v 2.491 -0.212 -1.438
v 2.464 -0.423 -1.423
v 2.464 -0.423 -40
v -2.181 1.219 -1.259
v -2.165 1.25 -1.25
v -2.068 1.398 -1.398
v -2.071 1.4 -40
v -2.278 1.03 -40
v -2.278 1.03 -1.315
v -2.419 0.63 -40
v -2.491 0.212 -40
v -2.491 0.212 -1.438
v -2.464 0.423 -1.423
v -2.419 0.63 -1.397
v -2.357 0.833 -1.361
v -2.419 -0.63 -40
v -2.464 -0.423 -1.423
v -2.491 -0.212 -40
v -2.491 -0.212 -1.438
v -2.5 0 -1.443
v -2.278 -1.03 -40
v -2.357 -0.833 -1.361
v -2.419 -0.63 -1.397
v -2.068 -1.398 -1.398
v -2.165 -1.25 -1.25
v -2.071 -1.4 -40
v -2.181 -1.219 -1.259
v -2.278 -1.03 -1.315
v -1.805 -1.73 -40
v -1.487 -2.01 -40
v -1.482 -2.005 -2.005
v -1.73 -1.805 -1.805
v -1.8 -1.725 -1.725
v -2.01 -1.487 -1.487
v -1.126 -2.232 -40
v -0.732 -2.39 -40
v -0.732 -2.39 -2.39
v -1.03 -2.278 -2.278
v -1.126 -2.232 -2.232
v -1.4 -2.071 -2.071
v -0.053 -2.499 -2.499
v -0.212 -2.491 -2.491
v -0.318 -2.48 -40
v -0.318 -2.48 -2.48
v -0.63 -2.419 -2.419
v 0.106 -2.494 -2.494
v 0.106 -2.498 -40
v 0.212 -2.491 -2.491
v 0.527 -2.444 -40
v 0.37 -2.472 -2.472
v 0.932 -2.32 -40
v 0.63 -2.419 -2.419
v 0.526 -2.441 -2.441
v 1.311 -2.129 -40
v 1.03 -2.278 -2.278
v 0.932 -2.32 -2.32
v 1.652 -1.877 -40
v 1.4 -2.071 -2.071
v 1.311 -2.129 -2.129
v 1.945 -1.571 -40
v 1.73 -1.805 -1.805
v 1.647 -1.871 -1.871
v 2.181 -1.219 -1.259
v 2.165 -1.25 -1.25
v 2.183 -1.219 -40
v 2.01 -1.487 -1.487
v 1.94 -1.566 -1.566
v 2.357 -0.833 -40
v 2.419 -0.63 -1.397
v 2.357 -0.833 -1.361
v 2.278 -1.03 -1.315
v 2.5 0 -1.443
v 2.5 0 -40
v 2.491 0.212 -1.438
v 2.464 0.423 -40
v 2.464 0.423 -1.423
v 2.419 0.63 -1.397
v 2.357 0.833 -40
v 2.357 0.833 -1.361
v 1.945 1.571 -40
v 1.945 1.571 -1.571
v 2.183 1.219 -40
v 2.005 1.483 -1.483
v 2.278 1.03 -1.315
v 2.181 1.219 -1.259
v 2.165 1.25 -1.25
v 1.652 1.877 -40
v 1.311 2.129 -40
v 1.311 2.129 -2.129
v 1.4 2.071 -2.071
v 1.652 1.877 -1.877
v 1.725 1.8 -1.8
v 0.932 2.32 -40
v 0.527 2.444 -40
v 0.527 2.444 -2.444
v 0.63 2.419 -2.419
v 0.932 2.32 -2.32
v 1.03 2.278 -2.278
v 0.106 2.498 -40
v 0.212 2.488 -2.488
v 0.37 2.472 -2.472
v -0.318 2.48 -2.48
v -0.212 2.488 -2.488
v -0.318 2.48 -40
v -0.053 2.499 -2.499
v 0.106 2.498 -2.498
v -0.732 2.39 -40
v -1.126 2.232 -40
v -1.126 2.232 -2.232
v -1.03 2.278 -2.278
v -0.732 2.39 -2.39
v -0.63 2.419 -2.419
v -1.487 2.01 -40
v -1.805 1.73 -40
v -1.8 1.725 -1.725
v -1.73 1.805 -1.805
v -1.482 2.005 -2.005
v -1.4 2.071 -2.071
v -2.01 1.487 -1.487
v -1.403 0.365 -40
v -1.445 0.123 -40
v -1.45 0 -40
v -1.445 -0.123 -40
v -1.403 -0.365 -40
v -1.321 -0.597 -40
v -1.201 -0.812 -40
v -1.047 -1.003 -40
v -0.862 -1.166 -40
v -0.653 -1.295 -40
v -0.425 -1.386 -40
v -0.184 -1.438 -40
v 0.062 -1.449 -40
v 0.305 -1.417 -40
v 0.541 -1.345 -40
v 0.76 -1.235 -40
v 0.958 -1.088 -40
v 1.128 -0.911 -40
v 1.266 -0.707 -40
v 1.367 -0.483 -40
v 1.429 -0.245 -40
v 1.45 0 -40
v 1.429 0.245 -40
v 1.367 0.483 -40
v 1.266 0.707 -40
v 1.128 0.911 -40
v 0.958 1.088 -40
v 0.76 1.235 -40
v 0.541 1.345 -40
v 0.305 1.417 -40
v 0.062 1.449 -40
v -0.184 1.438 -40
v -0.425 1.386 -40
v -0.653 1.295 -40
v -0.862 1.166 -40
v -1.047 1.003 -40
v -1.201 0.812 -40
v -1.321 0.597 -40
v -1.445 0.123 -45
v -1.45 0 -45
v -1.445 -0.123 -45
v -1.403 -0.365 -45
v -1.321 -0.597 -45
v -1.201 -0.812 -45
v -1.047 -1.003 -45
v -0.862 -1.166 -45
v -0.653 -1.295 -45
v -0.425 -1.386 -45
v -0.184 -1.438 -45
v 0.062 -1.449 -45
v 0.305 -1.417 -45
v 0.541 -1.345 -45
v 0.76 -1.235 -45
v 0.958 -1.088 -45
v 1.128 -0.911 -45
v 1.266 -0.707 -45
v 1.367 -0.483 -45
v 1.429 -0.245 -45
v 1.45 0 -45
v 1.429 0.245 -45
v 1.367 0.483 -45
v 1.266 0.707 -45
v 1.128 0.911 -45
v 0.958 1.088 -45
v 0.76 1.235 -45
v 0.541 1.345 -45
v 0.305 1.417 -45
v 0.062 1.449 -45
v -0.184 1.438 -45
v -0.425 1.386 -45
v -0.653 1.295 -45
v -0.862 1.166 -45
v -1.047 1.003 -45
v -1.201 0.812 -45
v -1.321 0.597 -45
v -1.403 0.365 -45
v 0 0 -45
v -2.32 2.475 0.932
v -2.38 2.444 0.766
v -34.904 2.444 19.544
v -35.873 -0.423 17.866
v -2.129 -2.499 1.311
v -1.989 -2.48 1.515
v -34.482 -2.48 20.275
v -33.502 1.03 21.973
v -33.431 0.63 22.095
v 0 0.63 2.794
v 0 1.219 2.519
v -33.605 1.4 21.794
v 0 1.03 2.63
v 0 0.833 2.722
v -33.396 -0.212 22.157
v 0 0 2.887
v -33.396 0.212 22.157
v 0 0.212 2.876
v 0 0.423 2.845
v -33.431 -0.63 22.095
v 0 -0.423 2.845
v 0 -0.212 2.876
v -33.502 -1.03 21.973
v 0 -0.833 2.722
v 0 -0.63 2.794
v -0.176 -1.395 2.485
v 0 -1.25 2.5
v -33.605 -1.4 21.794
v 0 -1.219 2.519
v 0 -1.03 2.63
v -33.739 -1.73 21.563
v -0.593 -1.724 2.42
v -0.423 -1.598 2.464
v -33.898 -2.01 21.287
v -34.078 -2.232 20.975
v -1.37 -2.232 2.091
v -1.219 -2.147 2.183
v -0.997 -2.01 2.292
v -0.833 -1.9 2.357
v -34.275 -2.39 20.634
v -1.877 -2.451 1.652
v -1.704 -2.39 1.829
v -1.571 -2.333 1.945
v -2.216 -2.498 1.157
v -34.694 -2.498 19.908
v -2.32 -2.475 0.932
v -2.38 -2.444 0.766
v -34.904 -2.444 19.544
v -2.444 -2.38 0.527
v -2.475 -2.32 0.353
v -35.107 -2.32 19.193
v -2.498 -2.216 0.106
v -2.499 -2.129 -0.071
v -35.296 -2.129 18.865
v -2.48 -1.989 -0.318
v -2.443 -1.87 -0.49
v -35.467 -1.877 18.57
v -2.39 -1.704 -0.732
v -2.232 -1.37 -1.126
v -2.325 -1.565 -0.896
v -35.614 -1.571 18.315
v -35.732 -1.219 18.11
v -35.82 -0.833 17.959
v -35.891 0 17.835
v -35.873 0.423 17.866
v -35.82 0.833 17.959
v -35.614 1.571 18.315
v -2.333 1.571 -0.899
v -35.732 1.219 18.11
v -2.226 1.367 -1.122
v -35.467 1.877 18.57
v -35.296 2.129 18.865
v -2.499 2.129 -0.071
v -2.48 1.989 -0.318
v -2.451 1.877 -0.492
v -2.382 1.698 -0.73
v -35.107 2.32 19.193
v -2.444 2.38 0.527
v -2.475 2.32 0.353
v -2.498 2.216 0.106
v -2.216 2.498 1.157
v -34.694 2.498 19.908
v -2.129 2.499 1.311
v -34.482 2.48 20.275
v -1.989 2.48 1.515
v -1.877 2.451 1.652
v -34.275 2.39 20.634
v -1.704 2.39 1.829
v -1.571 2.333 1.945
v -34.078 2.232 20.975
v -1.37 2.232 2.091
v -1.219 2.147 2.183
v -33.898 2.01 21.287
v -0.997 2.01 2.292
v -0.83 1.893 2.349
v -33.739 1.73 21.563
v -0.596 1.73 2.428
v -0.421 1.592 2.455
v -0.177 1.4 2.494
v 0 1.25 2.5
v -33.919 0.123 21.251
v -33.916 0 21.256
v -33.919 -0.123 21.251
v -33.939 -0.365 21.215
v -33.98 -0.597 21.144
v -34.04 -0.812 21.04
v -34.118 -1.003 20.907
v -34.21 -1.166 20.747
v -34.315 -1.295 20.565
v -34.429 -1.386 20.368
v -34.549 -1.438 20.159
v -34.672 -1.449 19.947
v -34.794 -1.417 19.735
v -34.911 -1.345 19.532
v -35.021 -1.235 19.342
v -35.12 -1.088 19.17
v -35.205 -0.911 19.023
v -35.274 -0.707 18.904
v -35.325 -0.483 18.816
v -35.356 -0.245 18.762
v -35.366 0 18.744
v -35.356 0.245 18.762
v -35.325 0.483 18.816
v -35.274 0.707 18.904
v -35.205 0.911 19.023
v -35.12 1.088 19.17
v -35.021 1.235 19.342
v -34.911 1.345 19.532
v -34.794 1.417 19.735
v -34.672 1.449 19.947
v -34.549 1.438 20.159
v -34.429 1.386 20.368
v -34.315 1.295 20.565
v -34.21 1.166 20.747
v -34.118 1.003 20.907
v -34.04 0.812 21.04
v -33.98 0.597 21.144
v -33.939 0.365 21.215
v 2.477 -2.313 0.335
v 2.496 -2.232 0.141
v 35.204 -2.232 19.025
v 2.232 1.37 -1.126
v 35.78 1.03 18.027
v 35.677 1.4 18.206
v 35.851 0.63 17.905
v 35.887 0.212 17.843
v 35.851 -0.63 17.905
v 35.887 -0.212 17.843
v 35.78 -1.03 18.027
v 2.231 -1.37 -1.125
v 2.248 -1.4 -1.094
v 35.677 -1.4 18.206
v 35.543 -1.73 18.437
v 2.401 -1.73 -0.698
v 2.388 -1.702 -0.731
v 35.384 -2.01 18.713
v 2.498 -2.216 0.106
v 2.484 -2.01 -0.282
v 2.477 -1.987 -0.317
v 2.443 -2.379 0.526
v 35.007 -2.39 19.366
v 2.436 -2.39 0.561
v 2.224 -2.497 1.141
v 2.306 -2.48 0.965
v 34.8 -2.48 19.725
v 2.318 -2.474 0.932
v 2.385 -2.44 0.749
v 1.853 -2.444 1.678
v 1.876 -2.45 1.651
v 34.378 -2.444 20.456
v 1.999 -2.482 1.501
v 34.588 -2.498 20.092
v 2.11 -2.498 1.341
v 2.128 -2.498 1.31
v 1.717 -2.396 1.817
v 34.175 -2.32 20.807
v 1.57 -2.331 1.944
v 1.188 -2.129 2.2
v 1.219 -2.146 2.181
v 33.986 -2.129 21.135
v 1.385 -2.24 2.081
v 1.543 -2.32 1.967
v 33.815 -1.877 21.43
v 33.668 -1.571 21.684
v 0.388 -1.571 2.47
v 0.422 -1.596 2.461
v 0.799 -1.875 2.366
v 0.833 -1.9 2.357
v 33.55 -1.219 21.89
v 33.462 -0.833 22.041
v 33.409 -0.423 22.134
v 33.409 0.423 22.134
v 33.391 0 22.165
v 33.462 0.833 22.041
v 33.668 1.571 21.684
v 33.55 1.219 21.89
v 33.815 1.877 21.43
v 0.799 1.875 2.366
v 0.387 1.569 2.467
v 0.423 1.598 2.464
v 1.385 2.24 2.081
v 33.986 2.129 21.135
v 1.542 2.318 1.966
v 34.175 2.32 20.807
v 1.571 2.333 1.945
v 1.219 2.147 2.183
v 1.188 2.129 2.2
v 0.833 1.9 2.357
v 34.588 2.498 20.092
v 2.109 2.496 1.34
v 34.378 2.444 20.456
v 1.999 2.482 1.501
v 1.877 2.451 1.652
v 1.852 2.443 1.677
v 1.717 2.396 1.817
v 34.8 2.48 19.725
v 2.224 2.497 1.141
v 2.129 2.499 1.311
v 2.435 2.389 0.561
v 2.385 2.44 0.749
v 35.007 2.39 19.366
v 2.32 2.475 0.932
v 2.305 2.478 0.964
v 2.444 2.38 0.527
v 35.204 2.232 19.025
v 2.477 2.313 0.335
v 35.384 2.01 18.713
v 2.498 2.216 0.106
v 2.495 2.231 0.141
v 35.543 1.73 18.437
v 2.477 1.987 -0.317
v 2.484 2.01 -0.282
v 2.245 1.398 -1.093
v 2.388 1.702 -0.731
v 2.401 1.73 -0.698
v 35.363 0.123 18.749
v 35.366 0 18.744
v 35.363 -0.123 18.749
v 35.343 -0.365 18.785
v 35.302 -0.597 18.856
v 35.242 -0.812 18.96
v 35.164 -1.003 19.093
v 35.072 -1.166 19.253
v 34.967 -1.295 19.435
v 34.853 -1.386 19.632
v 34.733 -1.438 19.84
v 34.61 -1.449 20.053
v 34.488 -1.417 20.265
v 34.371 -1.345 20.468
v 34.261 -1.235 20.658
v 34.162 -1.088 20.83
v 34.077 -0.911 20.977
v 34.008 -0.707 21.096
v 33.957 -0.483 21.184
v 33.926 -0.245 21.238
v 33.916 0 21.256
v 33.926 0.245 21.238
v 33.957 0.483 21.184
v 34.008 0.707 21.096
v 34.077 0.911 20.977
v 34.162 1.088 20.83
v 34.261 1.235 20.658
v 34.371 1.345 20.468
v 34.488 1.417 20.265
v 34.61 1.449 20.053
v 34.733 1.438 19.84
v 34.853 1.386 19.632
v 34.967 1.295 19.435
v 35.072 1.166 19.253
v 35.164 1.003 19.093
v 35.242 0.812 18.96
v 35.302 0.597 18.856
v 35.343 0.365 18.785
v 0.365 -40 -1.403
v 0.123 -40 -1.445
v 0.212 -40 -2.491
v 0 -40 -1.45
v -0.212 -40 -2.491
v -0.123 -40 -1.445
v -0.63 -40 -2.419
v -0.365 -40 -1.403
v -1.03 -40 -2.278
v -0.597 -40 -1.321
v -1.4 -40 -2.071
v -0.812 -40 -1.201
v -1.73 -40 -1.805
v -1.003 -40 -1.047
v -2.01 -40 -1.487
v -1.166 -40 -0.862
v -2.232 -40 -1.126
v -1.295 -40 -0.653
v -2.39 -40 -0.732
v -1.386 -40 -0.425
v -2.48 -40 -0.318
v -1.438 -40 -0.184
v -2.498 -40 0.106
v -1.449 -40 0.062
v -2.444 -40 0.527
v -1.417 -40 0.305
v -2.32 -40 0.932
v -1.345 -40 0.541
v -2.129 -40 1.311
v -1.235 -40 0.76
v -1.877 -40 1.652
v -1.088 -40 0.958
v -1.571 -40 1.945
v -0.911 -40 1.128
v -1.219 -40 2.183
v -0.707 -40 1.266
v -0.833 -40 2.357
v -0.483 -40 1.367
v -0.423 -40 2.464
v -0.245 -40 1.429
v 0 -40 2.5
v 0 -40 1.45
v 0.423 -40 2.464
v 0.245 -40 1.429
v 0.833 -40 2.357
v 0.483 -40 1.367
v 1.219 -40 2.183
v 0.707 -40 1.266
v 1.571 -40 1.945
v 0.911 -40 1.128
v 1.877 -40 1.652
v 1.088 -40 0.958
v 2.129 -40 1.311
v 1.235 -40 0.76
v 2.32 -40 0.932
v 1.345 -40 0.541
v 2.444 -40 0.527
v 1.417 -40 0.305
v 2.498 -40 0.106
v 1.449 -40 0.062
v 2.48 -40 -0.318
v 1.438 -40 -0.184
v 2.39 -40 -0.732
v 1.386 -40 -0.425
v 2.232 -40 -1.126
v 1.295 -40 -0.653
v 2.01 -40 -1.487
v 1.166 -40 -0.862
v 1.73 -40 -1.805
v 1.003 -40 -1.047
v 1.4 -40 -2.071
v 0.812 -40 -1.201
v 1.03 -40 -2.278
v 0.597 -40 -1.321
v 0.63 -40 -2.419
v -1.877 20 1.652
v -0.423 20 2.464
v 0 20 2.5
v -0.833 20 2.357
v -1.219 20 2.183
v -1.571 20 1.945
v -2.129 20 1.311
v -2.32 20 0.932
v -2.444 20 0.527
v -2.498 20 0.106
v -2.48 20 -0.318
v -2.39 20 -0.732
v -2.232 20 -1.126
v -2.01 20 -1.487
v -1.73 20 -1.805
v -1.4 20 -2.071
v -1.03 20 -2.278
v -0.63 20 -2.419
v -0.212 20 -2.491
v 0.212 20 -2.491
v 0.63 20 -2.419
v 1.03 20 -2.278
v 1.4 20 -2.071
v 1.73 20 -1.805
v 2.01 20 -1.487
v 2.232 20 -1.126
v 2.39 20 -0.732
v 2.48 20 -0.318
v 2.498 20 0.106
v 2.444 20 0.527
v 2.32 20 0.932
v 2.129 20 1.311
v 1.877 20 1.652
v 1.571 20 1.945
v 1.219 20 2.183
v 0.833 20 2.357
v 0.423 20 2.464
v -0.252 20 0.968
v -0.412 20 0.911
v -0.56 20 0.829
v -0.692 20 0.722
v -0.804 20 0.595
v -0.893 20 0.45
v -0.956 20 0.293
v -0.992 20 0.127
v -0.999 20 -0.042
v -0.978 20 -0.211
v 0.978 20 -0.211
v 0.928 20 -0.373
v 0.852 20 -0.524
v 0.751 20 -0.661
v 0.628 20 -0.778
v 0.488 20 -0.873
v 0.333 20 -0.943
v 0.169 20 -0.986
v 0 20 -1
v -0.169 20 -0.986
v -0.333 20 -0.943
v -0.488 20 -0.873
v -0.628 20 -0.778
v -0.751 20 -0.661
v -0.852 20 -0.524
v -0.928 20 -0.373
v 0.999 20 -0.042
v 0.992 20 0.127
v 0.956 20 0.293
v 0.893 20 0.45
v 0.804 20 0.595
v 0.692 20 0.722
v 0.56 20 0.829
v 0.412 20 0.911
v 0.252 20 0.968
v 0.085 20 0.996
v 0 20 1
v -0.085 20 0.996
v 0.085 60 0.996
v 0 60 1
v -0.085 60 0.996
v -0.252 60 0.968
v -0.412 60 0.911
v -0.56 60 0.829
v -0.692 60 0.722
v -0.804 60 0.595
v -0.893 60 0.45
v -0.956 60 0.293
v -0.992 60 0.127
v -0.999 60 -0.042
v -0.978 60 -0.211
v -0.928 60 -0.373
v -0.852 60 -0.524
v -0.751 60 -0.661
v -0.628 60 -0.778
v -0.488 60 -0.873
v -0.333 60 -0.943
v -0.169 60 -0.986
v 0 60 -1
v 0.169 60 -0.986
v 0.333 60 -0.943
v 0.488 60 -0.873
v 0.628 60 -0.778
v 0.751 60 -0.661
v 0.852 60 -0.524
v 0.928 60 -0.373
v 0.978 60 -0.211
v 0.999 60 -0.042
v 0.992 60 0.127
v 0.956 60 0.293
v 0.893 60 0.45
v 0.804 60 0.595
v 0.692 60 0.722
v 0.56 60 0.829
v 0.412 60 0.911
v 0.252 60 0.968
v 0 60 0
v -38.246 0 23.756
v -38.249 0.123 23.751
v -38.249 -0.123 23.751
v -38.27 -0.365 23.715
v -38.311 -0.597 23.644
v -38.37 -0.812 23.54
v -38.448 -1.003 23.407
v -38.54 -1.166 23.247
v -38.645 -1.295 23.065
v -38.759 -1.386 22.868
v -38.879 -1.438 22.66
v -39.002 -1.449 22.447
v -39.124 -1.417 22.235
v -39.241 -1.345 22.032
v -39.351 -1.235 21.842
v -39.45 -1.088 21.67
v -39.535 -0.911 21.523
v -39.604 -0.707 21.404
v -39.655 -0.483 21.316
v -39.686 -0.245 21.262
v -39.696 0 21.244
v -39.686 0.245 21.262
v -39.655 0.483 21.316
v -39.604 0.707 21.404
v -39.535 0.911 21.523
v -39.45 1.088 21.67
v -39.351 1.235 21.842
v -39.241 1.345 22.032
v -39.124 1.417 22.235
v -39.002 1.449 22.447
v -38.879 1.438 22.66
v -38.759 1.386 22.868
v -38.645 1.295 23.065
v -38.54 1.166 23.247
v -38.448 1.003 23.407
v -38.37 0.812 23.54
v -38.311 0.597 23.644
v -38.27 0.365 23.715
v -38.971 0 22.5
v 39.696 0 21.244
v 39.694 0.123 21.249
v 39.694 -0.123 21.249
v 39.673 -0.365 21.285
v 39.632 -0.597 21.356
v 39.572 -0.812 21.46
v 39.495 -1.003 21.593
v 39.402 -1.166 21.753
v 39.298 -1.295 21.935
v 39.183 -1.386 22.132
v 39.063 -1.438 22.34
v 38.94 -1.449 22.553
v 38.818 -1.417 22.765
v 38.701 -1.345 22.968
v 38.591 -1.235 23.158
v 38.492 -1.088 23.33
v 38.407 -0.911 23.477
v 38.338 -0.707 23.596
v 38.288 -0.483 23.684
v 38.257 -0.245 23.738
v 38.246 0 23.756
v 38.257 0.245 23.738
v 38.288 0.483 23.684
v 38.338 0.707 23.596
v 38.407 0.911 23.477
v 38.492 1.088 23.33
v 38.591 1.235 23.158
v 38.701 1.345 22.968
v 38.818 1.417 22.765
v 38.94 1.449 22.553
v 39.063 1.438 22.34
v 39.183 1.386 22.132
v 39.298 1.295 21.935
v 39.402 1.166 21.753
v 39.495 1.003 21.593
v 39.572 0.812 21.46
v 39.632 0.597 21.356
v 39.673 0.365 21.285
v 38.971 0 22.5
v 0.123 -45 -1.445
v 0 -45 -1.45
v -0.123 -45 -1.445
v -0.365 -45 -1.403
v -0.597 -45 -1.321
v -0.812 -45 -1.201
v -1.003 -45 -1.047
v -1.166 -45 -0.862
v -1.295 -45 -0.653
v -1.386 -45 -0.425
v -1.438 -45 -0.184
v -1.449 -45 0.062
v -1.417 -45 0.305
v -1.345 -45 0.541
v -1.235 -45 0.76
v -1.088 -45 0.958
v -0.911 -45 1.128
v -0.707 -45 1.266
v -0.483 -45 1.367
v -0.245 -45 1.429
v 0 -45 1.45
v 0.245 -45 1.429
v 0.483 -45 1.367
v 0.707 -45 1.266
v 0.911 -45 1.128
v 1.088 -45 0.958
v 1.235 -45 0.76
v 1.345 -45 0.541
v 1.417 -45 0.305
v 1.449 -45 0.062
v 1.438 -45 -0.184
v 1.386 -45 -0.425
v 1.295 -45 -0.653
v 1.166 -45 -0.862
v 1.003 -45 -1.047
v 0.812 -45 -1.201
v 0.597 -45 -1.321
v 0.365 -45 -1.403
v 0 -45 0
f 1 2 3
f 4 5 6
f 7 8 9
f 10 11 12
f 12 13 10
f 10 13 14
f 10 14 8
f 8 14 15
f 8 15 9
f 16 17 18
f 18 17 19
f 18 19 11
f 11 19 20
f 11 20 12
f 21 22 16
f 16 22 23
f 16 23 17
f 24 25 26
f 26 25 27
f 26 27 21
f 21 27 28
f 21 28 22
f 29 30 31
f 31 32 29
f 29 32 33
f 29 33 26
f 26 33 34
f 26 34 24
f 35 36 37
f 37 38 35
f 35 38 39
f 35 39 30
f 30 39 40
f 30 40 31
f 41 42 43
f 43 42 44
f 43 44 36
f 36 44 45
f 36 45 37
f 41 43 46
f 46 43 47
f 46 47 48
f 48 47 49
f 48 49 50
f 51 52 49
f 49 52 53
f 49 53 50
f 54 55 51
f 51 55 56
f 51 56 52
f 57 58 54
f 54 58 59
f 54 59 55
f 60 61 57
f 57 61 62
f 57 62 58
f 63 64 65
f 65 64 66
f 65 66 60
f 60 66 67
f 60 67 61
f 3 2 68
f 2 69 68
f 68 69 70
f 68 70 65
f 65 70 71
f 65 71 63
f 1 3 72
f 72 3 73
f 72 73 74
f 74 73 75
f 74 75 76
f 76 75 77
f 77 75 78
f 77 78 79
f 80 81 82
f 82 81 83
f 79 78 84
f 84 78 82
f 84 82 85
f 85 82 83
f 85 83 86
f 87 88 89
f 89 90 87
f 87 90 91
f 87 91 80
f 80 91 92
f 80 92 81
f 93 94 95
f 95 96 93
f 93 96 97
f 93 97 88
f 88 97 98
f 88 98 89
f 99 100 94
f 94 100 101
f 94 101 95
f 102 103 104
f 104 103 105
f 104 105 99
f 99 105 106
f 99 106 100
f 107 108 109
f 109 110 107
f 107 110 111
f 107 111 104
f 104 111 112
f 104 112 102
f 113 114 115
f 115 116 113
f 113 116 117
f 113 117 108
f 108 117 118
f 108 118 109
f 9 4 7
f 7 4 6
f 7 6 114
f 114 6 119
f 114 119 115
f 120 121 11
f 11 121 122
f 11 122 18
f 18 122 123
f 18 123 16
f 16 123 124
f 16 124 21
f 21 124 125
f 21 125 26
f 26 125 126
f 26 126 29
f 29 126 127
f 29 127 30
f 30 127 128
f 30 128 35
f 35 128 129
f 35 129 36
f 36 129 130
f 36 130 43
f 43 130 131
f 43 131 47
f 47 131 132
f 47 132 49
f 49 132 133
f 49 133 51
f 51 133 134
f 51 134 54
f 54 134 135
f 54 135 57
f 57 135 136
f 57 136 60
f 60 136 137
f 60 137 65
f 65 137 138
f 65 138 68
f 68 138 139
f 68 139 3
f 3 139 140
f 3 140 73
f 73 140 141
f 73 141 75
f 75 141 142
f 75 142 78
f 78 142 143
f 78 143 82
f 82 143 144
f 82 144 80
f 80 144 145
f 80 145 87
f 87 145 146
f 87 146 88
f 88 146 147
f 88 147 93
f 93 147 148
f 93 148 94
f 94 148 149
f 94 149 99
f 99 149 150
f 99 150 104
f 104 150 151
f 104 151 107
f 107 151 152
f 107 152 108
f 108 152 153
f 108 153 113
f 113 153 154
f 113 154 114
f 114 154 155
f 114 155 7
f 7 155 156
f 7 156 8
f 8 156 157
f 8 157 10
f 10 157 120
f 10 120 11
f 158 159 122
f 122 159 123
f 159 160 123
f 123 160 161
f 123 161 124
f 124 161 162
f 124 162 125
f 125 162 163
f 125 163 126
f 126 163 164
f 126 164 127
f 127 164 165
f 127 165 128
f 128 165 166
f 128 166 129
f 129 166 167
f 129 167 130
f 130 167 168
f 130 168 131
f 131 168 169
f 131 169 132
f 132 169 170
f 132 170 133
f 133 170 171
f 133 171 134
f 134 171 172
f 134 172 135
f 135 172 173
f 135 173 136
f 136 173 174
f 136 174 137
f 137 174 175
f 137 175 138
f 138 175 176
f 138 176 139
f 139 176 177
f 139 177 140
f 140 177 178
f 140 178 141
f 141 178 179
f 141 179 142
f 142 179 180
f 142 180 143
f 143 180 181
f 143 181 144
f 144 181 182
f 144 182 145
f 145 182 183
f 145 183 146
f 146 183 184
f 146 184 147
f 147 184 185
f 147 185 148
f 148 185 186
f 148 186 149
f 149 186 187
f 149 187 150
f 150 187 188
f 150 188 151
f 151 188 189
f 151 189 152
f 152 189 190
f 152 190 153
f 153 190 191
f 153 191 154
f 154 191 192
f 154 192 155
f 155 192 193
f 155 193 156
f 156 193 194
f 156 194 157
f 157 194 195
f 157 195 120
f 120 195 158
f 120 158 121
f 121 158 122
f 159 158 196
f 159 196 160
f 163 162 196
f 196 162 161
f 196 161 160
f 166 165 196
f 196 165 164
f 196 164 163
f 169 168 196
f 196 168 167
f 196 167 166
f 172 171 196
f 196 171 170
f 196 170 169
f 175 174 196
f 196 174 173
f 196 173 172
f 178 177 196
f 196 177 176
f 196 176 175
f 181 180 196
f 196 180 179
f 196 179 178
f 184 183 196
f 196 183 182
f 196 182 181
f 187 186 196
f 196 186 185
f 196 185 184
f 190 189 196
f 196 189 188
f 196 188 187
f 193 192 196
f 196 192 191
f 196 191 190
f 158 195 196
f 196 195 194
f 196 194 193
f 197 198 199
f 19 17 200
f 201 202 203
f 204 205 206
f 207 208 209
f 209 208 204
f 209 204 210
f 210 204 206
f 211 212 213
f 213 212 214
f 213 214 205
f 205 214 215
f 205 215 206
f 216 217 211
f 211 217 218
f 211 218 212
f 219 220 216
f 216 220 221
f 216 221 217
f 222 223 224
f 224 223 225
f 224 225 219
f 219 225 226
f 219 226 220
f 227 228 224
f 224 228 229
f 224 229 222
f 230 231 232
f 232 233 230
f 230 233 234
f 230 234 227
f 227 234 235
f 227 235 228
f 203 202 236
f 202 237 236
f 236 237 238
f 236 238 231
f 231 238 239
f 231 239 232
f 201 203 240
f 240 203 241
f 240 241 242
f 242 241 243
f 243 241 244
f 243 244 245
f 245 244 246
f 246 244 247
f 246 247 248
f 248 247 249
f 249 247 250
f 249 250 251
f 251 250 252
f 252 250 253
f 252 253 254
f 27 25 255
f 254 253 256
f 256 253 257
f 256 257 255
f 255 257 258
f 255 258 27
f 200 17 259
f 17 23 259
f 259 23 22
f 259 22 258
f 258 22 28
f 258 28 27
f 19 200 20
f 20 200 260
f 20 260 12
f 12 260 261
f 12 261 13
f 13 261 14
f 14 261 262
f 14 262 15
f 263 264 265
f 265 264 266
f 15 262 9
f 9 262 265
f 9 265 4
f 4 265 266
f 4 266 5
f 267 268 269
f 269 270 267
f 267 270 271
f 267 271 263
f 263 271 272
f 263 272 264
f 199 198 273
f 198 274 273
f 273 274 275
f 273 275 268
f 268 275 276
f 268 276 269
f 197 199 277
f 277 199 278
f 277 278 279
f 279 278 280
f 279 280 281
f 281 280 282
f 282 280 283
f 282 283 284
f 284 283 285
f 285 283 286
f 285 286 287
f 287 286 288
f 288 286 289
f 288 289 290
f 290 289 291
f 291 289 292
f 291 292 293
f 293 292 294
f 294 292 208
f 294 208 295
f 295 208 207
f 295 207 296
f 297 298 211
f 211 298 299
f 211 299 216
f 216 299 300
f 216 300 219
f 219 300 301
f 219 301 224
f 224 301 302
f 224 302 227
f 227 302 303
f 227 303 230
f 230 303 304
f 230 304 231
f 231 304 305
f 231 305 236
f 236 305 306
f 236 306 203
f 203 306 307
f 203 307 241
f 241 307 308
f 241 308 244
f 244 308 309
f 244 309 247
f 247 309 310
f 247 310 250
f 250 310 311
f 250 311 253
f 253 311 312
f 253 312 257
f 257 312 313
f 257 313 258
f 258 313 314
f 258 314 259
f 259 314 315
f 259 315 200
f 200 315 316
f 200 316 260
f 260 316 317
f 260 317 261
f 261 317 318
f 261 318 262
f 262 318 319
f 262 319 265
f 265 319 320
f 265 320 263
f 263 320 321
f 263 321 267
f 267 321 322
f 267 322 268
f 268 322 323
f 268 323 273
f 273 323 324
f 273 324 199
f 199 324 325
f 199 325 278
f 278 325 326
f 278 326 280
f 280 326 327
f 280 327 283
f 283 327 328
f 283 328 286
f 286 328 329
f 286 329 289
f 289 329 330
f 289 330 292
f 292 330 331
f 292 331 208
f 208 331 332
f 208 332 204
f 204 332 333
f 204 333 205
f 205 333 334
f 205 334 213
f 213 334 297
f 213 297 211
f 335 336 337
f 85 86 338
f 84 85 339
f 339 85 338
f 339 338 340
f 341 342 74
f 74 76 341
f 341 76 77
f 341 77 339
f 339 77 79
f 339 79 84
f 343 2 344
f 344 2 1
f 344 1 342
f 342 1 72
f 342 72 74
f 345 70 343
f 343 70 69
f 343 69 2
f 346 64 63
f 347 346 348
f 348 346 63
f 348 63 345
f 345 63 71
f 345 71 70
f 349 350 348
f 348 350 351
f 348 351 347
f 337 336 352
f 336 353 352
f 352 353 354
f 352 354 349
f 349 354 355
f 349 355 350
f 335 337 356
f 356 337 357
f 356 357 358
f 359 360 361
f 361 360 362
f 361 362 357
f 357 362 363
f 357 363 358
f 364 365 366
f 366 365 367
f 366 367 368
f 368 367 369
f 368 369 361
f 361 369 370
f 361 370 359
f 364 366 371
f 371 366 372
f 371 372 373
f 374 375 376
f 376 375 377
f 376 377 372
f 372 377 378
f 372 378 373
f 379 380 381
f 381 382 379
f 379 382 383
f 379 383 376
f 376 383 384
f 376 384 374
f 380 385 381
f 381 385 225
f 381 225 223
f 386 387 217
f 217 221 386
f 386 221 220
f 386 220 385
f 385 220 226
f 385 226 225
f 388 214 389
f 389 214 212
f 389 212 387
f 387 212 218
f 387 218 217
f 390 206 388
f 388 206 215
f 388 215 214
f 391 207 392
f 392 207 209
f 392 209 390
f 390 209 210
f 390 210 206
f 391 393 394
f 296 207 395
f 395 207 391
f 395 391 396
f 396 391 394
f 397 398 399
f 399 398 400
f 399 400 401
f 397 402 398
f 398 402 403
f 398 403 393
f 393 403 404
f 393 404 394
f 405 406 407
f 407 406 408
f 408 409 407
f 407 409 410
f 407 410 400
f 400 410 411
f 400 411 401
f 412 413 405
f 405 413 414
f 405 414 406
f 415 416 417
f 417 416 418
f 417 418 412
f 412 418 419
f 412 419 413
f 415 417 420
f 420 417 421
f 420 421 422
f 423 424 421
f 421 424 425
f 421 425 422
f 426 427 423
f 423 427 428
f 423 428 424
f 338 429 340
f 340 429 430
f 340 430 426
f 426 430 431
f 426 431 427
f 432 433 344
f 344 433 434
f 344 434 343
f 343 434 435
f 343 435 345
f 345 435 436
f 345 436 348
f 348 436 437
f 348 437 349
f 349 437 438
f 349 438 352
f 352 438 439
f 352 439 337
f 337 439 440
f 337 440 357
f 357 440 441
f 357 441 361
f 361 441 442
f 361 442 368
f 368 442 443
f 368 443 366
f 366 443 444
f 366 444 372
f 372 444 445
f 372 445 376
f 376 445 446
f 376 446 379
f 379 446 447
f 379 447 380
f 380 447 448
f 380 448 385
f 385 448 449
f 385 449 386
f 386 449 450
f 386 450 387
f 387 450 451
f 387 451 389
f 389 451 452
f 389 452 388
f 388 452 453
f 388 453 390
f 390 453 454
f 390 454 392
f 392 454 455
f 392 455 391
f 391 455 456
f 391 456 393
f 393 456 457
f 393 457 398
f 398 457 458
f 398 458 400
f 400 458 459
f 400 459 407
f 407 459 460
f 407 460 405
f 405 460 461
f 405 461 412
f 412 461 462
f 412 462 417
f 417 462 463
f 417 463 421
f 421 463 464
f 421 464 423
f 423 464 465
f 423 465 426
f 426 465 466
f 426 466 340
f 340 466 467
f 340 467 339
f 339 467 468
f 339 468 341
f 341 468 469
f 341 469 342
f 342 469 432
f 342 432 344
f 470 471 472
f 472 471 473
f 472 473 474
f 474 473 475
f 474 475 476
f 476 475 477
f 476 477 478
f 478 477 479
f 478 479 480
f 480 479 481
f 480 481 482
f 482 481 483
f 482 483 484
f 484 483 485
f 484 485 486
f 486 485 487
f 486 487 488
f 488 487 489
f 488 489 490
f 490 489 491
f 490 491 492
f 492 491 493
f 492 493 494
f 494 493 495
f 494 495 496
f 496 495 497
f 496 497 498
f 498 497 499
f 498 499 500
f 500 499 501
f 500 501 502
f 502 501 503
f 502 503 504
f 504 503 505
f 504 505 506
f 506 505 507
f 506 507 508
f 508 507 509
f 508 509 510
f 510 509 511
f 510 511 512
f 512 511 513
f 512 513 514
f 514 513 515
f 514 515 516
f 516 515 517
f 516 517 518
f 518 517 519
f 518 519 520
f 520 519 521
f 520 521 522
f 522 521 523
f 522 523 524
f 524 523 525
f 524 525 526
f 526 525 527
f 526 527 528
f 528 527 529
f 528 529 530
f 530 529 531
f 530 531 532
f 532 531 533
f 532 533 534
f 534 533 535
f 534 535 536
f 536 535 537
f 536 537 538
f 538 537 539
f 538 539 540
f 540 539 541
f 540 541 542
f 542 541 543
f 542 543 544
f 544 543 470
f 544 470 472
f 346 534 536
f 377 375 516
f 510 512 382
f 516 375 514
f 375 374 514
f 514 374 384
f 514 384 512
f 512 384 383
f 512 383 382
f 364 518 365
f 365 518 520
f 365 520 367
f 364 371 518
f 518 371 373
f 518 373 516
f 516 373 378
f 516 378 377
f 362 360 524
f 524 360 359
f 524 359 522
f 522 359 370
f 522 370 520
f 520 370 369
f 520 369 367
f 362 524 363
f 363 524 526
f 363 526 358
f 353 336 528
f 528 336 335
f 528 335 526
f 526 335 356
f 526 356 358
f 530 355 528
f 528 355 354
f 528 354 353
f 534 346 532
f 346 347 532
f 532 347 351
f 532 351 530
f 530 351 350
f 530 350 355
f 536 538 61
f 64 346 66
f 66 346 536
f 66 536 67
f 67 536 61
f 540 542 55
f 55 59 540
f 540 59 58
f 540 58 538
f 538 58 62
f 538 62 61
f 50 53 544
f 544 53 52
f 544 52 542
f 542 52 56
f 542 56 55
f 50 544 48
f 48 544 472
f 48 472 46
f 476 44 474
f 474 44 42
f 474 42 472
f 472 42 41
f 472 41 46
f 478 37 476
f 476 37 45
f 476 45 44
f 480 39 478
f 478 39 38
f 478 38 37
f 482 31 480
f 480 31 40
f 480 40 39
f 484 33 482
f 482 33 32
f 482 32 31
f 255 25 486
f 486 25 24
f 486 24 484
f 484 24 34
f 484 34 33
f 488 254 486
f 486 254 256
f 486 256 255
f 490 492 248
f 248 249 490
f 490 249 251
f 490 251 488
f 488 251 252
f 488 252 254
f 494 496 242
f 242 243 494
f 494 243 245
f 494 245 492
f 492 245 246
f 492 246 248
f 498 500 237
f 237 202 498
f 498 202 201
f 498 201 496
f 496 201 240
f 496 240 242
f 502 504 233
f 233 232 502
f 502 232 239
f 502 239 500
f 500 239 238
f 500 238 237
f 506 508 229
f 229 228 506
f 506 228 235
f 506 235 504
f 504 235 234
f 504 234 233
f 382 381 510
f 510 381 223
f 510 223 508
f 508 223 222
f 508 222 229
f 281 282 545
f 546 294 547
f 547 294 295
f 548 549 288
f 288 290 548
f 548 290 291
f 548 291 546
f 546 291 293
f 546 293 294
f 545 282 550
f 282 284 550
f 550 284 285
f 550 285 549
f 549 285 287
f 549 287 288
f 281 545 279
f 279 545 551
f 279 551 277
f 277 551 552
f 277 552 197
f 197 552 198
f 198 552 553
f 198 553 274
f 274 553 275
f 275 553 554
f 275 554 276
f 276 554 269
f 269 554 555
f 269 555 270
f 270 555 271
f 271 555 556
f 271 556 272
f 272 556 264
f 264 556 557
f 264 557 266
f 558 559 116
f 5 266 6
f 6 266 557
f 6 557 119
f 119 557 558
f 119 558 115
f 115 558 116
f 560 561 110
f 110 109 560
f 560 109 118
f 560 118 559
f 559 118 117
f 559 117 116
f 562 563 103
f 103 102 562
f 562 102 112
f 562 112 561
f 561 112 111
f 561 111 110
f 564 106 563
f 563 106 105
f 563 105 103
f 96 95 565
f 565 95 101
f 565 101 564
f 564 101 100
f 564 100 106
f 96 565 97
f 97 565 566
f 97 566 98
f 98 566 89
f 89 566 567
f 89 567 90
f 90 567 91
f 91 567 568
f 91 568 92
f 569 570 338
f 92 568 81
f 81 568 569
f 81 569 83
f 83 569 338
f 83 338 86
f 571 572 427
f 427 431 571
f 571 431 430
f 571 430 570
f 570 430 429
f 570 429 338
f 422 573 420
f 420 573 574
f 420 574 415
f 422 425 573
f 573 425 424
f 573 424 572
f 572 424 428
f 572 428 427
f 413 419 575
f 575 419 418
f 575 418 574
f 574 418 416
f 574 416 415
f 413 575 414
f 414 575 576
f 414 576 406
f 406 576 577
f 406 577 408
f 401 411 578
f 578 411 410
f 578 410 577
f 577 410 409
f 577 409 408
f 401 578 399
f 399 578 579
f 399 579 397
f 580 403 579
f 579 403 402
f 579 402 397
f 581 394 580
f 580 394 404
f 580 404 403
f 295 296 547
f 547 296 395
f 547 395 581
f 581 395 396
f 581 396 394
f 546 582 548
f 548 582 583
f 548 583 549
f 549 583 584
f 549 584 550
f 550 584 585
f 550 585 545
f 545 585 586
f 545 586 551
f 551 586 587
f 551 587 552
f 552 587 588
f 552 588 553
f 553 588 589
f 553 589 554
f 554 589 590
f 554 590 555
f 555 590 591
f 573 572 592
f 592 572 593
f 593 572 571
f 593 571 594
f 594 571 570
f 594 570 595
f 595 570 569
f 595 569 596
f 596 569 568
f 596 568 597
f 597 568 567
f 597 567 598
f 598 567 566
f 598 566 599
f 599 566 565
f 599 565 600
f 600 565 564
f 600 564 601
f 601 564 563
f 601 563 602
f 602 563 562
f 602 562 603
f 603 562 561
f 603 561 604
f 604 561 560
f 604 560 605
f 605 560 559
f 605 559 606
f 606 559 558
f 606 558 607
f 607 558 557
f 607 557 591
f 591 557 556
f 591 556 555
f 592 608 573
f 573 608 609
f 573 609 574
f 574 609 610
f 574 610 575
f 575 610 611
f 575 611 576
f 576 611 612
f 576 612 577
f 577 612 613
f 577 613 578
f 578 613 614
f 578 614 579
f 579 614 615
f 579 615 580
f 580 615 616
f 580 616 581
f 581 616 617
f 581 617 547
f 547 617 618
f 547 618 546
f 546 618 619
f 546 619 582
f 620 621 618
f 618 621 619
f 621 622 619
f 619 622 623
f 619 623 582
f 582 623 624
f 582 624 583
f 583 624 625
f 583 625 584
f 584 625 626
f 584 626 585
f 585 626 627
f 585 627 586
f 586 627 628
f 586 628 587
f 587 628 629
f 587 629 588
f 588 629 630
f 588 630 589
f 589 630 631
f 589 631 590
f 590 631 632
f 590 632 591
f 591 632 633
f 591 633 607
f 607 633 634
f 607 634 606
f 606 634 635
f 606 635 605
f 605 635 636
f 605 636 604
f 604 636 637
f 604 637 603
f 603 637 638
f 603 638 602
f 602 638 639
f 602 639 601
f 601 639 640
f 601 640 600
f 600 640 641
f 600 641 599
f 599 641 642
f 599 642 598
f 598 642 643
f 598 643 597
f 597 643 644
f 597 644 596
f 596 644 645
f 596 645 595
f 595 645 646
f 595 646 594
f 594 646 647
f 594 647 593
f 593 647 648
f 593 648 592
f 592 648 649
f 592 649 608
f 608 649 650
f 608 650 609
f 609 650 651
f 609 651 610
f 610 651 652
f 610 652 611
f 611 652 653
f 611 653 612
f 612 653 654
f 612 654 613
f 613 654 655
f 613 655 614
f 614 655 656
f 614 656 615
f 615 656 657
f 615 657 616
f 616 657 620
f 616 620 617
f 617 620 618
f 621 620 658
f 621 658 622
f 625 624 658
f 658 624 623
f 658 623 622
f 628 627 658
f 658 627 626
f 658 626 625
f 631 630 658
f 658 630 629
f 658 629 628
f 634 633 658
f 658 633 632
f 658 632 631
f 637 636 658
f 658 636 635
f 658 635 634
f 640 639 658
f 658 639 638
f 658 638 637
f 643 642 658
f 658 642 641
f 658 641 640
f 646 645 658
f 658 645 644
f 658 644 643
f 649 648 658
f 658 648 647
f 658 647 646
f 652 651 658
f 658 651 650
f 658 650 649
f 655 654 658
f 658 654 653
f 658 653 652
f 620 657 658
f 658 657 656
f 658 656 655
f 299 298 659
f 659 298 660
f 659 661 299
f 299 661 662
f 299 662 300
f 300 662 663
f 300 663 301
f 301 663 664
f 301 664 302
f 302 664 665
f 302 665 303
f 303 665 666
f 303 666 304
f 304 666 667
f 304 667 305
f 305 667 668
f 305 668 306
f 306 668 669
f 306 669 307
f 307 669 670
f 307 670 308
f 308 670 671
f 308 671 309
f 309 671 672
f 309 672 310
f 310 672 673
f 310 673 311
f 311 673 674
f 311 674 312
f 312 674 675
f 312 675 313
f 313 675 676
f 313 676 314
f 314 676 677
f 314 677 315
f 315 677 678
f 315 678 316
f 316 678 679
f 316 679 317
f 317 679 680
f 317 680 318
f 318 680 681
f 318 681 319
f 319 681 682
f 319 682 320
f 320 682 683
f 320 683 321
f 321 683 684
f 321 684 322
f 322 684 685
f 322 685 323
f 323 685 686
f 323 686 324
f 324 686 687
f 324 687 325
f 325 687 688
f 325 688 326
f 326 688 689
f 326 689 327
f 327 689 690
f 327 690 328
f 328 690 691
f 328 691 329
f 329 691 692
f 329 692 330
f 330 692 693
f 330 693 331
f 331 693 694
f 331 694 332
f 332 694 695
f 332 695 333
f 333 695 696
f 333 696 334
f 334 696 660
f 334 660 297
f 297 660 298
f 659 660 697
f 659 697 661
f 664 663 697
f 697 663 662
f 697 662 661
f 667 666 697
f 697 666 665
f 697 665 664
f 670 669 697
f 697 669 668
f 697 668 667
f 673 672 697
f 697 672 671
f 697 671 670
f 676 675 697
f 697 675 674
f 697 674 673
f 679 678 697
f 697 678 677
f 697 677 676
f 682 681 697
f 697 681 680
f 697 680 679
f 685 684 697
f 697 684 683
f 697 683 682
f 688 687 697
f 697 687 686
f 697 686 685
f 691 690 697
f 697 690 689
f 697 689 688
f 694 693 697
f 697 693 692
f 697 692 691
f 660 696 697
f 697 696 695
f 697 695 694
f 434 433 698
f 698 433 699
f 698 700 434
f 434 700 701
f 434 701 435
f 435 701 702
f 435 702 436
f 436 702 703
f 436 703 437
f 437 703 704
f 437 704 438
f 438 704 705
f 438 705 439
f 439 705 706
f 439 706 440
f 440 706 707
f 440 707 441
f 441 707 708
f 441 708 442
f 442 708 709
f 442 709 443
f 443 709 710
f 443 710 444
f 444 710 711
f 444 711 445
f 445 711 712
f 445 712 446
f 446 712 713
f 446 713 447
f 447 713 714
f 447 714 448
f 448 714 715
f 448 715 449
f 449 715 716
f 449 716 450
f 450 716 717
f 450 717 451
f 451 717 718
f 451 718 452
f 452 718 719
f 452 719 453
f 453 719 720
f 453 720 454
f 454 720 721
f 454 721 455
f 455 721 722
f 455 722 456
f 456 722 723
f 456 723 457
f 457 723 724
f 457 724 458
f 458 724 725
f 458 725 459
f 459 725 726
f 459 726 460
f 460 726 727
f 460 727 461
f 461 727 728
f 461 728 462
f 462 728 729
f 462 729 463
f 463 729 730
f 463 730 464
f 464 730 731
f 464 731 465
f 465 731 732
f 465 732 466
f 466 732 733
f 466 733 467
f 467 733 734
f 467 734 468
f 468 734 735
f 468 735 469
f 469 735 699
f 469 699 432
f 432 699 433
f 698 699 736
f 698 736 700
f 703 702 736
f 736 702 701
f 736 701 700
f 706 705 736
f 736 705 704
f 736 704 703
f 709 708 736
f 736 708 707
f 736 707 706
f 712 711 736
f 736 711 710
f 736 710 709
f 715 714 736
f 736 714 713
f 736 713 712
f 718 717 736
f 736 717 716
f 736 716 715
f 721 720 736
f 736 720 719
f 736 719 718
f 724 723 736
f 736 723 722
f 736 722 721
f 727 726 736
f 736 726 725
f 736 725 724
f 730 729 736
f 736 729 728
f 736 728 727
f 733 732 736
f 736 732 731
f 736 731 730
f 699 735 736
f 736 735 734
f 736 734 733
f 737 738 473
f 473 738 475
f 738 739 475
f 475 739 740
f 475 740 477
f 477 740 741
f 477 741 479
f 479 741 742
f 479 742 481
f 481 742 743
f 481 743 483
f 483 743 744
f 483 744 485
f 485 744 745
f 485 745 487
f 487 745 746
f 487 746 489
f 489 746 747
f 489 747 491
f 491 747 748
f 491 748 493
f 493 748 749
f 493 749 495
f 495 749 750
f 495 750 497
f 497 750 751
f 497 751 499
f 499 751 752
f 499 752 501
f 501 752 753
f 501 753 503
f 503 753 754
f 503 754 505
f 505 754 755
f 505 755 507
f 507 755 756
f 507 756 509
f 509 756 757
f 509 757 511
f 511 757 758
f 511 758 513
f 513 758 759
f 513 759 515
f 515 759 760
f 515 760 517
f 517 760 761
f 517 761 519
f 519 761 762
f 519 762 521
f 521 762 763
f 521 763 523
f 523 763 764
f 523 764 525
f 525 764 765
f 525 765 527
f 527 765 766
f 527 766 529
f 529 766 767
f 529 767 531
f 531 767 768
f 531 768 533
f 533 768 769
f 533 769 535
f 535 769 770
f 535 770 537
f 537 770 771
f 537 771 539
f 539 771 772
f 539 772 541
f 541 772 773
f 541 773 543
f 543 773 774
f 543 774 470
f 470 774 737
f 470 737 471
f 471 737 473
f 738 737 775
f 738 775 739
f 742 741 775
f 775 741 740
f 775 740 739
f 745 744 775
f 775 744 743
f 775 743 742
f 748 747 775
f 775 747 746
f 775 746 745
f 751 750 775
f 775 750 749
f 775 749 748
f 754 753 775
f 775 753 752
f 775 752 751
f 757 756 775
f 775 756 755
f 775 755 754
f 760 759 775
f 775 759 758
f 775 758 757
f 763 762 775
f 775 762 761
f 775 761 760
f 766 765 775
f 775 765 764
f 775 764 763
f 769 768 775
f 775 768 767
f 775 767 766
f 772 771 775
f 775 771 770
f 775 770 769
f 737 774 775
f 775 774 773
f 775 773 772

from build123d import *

# Parameters (mm, degrees)
SKETCH_1_W                 = 2.5
SKETCH_1_H                 = 40
SKETCH_8_R                 = 1.45
EXTRUDE_2_DEPTH            = 5
PATTERN_CIRCULAR_760_COUNT = 3
EXTRUDE_2_2_DEPTH          = 20
EXTRUDE_2_2_DEPTH_BACK     = 40
SKETCH_5_R                 = 2.5
SKETCH_6_R                 = 1
EXTRUDE_1_DEPTH            = 40
PATTERN_CIRCULAR_1_COUNT   = 3
SKETCH_9_R                 = 1.45
EXTRUDE_3_DEPTH            = 5


with BuildPart() as part:
    # 草图1 → 杆件1 (revolve)
    with BuildSketch(Plane(origin=(0, 0, 0), x_dir=(1, 0, 0), z_dir=(0, 1, 0)), mode=Mode.PRIVATE) as revolve_1_sk:
        with Locations((-1.25, 20)):
            Rectangle(SKETCH_1_W, SKETCH_1_H)
    revolve_1 = revolve(revolve_1_sk.sketch.rotate(Axis((0, 0, 0), (0, 0, -1)), 180), axis=Axis((0, 0, 0), (0, 0, -1)))

    # 草图8 → Extrude 2 (add)
    with BuildSketch(Plane(origin=(0, 0, -40), x_dir=(-1, 0, 0), z_dir=(0, 0, -1))):
        Circle(SKETCH_8_R)
    extrude_2 = extrude(amount=EXTRUDE_2_DEPTH)

    # Pattern Circular 760: 杆件1 ×3 about axis
    pattern_circular_760_axis = Axis((0, 0, 0), (0, 1, 0))
    for i in range(1, PATTERN_CIRCULAR_760_COUNT):
        add(revolve_1.rotate(pattern_circular_760_axis, i * 360 / PATTERN_CIRCULAR_760_COUNT))

    # 草图5 → Extrude 2 2 (add, two sides: drawn at the far end of the back side and taken through both)
    with BuildSketch(Plane(origin=(0, 0, 0), x_dir=(1, 0, 0), z_dir=(0, 1, 0)).offset(-EXTRUDE_2_2_DEPTH_BACK)):
        with Locations(Location((0, 0, 0), (0, 0, 270))):
            Circle(SKETCH_5_R)
    extrude(amount=EXTRUDE_2_2_DEPTH + EXTRUDE_2_2_DEPTH_BACK)

    # 草图6 → 凸台-拉伸1 (add)
    with BuildSketch(Plane(origin=(0, 20, 0), x_dir=(1, 0, 0), z_dir=(0, 1, 0))):
        with Locations(Location((0, 0, 0), (0, 0, 270))):
            Circle(SKETCH_6_R)
    extrude(amount=EXTRUDE_1_DEPTH)

    # 阵列(圆周)1: Extrude 2 ×3 about axis
    pattern_circular_1_axis = Axis((0, 0, 0), (0, 1, 0))
    for i in range(1, PATTERN_CIRCULAR_1_COUNT):
        add(extrude_2.rotate(pattern_circular_1_axis, i * 360 / PATTERN_CIRCULAR_1_COUNT))

    # 草图9 → 凸台-拉伸3 (add)
    with BuildSketch(Plane.XZ.offset(40)):
        with Locations(Location((0, 0, 0), (0, 0, 270))):
            Circle(SKETCH_9_R)
    extrude(amount=EXTRUDE_3_DEPTH)


solid = part.part
